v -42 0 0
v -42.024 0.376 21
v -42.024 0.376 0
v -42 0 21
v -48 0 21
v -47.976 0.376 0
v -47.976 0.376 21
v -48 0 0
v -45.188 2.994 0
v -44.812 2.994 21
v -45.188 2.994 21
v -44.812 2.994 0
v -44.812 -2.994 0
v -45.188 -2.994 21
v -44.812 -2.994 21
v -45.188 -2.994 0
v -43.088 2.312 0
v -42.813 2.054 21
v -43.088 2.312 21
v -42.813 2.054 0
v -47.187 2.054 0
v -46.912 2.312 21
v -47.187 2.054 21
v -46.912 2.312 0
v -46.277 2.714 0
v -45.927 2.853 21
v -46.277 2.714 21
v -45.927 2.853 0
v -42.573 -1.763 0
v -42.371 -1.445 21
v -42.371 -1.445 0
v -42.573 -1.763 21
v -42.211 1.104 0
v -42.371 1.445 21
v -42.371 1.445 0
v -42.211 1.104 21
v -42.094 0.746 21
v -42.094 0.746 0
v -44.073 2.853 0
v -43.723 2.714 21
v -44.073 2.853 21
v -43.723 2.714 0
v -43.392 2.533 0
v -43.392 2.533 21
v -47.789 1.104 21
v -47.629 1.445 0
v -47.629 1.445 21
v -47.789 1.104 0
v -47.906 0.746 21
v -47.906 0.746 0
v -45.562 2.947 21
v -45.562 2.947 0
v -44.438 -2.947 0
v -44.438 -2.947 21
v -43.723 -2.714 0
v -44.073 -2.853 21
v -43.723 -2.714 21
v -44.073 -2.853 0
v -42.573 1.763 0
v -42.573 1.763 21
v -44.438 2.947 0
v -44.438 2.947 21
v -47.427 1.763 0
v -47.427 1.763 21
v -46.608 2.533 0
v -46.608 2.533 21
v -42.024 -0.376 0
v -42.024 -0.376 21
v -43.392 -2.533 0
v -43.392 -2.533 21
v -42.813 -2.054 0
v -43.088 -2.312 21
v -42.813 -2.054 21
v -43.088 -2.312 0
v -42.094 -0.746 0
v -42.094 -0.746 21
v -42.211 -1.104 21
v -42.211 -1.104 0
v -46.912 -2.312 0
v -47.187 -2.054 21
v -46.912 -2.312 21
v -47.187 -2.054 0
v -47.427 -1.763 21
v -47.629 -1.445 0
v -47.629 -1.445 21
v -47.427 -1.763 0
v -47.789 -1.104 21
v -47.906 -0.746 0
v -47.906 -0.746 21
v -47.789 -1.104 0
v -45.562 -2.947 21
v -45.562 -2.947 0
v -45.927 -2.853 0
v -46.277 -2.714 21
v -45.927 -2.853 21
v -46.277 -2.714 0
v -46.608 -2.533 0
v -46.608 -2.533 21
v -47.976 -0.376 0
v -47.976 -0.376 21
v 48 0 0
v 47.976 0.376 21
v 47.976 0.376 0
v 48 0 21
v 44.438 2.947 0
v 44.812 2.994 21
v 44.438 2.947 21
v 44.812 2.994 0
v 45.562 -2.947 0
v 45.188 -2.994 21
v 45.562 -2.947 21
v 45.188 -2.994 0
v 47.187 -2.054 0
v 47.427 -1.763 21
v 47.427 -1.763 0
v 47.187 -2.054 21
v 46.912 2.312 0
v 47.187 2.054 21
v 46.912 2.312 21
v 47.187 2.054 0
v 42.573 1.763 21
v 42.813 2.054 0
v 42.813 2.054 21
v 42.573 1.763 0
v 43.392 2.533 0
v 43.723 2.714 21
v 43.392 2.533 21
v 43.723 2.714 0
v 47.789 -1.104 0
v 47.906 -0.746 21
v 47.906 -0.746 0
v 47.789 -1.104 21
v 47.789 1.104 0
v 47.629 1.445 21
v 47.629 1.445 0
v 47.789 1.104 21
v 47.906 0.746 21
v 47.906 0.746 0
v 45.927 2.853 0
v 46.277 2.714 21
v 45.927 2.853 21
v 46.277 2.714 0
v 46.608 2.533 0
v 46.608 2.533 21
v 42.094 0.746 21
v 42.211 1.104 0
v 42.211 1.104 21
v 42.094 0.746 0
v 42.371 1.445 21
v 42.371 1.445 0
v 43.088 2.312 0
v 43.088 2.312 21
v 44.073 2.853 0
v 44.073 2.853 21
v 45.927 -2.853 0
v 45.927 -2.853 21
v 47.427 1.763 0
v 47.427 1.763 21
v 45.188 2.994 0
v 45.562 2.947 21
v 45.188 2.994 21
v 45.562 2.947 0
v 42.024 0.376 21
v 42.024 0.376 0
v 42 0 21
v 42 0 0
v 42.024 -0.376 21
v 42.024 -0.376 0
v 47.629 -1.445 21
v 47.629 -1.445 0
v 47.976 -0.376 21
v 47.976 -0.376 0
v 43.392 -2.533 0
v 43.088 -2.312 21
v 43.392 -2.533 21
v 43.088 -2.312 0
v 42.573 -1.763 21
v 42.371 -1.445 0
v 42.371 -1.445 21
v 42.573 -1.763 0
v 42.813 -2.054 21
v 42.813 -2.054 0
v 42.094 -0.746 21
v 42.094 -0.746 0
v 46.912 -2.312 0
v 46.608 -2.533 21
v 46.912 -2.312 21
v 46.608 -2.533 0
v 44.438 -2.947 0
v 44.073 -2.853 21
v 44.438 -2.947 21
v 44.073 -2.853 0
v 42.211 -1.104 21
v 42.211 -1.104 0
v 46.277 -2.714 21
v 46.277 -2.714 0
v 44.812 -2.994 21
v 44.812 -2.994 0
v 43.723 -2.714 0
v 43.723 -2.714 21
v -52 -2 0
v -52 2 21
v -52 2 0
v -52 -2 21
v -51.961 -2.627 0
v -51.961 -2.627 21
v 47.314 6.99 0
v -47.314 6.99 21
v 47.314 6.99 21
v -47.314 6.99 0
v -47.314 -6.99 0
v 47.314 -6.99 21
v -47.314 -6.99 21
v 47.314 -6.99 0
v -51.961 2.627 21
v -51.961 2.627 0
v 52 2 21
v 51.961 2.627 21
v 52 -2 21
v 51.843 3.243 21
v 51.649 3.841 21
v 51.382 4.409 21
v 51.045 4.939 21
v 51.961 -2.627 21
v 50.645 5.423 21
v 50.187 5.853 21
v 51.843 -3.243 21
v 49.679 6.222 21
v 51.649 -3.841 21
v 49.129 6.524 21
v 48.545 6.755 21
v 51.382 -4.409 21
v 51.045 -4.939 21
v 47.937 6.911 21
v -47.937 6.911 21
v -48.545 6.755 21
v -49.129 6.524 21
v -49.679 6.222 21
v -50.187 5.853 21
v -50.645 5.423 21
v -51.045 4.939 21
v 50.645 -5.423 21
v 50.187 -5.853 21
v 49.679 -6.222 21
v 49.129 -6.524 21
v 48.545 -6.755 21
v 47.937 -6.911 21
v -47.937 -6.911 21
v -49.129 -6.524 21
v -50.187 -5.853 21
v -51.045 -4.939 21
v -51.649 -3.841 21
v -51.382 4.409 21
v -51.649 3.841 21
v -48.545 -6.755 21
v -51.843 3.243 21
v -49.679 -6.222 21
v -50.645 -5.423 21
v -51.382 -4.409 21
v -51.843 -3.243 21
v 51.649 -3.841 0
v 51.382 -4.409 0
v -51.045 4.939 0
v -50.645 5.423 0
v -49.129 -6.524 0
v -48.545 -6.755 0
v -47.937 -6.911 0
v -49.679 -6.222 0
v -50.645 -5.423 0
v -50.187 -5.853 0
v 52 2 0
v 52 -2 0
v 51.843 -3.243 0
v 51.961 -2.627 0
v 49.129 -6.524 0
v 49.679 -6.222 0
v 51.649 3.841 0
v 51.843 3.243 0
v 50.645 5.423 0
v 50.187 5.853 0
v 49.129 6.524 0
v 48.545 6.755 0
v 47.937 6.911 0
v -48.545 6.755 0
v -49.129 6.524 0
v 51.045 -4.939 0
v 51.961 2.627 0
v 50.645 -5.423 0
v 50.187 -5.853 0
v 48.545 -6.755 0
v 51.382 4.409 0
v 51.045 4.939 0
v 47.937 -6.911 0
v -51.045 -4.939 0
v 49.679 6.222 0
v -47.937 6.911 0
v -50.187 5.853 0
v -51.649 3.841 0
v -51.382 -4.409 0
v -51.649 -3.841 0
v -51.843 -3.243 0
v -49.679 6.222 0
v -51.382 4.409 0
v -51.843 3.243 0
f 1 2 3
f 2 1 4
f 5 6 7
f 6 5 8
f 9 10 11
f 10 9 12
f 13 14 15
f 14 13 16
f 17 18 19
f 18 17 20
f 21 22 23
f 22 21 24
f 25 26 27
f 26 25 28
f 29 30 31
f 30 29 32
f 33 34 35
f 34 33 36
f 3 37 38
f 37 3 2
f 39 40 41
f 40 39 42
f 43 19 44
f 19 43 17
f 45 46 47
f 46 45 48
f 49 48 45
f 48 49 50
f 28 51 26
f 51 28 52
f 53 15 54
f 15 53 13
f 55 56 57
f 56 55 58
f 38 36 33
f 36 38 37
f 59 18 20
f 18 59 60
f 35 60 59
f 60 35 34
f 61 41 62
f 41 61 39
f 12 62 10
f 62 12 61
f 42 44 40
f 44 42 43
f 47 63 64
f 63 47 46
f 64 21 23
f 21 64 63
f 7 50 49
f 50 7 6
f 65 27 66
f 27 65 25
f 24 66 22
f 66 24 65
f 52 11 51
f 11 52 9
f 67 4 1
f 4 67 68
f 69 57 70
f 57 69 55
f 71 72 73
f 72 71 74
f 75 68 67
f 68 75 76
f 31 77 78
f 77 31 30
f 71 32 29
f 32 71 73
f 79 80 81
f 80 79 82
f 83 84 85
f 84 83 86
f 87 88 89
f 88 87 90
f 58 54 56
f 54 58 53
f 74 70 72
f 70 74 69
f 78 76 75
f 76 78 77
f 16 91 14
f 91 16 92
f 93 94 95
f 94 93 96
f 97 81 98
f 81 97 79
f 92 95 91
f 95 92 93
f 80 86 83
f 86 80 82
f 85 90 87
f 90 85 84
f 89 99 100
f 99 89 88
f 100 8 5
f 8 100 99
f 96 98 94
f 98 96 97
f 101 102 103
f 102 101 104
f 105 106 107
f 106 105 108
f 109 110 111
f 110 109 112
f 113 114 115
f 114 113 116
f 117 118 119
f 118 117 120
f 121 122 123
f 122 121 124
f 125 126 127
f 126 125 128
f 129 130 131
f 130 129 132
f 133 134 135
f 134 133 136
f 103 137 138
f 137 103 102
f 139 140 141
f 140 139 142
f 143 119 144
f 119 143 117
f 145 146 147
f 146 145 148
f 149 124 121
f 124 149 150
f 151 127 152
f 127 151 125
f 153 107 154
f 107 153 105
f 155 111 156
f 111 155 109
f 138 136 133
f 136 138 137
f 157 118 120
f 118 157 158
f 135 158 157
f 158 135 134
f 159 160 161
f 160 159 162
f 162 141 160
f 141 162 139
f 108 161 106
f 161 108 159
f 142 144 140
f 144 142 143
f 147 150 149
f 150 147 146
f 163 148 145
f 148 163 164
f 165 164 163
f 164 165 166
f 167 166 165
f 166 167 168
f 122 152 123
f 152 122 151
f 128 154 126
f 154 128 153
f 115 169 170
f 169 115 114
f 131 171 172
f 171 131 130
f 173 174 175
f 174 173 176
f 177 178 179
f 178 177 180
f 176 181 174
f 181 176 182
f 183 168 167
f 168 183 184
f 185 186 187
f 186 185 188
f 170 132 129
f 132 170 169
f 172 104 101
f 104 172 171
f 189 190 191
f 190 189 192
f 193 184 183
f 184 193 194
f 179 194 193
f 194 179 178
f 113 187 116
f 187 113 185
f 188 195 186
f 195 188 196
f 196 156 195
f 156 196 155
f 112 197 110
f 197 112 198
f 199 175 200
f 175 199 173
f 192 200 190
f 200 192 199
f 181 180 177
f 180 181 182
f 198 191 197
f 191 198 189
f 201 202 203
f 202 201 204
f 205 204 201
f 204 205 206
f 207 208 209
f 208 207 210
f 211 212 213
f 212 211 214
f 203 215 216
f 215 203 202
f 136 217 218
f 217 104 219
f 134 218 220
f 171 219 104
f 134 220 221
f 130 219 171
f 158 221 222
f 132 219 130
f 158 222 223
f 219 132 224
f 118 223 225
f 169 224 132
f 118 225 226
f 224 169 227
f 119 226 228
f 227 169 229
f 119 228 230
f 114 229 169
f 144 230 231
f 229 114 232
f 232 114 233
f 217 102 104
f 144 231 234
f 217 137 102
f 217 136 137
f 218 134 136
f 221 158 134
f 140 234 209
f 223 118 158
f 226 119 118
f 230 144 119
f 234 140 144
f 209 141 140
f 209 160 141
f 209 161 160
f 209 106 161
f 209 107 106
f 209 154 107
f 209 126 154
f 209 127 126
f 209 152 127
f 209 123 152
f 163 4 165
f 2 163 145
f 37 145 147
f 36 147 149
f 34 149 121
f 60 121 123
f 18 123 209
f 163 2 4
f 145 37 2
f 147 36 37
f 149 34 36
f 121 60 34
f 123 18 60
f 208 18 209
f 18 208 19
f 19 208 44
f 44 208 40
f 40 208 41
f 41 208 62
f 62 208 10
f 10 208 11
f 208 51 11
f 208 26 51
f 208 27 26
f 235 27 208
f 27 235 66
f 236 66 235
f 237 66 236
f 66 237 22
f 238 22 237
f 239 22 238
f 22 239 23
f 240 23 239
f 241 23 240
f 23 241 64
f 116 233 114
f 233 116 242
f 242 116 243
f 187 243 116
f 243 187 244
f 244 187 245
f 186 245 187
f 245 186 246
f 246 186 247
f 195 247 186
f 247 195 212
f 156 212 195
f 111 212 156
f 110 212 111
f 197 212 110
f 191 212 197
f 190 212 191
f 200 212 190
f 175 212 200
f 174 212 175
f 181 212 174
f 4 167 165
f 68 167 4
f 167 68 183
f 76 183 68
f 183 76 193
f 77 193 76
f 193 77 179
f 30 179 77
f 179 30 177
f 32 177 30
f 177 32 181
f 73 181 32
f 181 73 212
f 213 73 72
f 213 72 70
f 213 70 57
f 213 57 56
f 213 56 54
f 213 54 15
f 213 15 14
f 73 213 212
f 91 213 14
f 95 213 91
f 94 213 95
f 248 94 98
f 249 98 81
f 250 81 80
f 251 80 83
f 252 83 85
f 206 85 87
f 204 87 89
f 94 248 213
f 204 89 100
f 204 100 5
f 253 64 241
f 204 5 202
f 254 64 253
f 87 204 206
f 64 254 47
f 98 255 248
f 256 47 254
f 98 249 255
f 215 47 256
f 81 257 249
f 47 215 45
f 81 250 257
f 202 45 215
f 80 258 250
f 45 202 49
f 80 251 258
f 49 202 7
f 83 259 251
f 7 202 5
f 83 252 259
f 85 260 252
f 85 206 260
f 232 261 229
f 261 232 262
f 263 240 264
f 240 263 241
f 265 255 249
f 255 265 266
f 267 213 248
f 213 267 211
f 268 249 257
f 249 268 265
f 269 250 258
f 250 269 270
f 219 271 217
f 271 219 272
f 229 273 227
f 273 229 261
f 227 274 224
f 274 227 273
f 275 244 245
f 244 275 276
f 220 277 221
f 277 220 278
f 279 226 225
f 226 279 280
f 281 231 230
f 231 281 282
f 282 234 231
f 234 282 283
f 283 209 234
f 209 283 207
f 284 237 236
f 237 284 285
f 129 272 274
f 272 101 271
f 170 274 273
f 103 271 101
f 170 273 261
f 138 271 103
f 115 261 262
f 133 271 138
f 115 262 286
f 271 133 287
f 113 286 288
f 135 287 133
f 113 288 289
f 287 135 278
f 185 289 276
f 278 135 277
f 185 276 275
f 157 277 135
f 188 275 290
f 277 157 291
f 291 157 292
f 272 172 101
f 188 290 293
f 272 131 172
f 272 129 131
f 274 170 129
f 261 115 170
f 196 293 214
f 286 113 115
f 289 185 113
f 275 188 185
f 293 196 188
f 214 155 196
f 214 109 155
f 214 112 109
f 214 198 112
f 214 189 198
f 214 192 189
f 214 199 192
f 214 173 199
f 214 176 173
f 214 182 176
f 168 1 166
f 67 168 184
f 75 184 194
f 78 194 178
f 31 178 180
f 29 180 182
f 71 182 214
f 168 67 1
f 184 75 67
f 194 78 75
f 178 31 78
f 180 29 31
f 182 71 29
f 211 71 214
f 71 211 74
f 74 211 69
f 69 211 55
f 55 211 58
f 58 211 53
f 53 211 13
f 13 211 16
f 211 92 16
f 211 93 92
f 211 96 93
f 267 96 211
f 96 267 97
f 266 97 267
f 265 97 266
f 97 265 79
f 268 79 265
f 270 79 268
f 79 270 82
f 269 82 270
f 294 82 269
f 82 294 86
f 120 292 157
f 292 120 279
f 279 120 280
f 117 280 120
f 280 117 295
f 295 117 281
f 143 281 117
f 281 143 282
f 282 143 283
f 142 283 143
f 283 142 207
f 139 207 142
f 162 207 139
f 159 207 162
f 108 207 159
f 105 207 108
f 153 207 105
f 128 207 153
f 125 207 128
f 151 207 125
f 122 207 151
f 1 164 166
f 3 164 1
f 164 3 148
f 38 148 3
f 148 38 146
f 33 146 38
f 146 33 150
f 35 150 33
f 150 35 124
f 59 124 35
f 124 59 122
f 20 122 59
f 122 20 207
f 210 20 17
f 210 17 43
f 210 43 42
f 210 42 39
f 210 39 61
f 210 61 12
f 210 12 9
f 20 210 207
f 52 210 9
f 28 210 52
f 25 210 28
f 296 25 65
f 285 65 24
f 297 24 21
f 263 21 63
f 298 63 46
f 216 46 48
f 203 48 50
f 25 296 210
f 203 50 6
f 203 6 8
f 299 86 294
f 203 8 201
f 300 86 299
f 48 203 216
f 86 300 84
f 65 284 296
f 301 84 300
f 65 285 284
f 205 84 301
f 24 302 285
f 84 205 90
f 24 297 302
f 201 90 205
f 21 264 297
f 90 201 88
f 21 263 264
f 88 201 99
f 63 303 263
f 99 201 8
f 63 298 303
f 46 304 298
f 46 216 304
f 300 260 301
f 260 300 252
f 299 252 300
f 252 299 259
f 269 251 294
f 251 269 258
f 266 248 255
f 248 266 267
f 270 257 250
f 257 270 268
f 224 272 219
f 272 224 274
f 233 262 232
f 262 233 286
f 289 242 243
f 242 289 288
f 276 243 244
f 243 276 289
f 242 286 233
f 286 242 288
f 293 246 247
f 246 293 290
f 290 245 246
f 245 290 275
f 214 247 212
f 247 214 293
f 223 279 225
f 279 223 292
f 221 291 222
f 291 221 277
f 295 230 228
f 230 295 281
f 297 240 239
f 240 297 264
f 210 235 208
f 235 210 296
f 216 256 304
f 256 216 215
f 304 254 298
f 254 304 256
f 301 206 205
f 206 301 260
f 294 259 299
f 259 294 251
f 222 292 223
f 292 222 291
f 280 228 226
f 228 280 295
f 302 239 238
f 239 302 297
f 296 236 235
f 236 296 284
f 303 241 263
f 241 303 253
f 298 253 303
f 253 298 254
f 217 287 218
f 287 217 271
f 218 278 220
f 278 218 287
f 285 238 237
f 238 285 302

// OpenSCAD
$fn = 50;


difference() {
	union() {
		hull() {
			translate(v = [-47.0000000000, 2.0000000000, 0]) {
				cylinder(h = 21, r = 5);
			}
			translate(v = [47.0000000000, 2.0000000000, 0]) {
				cylinder(h = 21, r = 5);
			}
			translate(v = [-47.0000000000, -2.0000000000, 0]) {
				cylinder(h = 21, r = 5);
			}
			translate(v = [47.0000000000, -2.0000000000, 0]) {
				cylinder(h = 21, r = 5);
			}
		}
	}
	union() {
		translate(v = [-45.0000000000, 0.0000000000, -100.0000000000]) {
			cylinder(h = 200, r = 3.0000000000);
		}
		translate(v = [-45.0000000000, 0.0000000000, -100.0000000000]) {
			cylinder(h = 200, r = 3.0000000000);
		}
		translate(v = [45.0000000000, 0.0000000000, -100.0000000000]) {
			cylinder(h = 200, r = 3.0000000000);
		}
		translate(v = [45.0000000000, 0.0000000000, -100.0000000000]) {
			cylinder(h = 200, r = 3.0000000000);
		}
	}
}
